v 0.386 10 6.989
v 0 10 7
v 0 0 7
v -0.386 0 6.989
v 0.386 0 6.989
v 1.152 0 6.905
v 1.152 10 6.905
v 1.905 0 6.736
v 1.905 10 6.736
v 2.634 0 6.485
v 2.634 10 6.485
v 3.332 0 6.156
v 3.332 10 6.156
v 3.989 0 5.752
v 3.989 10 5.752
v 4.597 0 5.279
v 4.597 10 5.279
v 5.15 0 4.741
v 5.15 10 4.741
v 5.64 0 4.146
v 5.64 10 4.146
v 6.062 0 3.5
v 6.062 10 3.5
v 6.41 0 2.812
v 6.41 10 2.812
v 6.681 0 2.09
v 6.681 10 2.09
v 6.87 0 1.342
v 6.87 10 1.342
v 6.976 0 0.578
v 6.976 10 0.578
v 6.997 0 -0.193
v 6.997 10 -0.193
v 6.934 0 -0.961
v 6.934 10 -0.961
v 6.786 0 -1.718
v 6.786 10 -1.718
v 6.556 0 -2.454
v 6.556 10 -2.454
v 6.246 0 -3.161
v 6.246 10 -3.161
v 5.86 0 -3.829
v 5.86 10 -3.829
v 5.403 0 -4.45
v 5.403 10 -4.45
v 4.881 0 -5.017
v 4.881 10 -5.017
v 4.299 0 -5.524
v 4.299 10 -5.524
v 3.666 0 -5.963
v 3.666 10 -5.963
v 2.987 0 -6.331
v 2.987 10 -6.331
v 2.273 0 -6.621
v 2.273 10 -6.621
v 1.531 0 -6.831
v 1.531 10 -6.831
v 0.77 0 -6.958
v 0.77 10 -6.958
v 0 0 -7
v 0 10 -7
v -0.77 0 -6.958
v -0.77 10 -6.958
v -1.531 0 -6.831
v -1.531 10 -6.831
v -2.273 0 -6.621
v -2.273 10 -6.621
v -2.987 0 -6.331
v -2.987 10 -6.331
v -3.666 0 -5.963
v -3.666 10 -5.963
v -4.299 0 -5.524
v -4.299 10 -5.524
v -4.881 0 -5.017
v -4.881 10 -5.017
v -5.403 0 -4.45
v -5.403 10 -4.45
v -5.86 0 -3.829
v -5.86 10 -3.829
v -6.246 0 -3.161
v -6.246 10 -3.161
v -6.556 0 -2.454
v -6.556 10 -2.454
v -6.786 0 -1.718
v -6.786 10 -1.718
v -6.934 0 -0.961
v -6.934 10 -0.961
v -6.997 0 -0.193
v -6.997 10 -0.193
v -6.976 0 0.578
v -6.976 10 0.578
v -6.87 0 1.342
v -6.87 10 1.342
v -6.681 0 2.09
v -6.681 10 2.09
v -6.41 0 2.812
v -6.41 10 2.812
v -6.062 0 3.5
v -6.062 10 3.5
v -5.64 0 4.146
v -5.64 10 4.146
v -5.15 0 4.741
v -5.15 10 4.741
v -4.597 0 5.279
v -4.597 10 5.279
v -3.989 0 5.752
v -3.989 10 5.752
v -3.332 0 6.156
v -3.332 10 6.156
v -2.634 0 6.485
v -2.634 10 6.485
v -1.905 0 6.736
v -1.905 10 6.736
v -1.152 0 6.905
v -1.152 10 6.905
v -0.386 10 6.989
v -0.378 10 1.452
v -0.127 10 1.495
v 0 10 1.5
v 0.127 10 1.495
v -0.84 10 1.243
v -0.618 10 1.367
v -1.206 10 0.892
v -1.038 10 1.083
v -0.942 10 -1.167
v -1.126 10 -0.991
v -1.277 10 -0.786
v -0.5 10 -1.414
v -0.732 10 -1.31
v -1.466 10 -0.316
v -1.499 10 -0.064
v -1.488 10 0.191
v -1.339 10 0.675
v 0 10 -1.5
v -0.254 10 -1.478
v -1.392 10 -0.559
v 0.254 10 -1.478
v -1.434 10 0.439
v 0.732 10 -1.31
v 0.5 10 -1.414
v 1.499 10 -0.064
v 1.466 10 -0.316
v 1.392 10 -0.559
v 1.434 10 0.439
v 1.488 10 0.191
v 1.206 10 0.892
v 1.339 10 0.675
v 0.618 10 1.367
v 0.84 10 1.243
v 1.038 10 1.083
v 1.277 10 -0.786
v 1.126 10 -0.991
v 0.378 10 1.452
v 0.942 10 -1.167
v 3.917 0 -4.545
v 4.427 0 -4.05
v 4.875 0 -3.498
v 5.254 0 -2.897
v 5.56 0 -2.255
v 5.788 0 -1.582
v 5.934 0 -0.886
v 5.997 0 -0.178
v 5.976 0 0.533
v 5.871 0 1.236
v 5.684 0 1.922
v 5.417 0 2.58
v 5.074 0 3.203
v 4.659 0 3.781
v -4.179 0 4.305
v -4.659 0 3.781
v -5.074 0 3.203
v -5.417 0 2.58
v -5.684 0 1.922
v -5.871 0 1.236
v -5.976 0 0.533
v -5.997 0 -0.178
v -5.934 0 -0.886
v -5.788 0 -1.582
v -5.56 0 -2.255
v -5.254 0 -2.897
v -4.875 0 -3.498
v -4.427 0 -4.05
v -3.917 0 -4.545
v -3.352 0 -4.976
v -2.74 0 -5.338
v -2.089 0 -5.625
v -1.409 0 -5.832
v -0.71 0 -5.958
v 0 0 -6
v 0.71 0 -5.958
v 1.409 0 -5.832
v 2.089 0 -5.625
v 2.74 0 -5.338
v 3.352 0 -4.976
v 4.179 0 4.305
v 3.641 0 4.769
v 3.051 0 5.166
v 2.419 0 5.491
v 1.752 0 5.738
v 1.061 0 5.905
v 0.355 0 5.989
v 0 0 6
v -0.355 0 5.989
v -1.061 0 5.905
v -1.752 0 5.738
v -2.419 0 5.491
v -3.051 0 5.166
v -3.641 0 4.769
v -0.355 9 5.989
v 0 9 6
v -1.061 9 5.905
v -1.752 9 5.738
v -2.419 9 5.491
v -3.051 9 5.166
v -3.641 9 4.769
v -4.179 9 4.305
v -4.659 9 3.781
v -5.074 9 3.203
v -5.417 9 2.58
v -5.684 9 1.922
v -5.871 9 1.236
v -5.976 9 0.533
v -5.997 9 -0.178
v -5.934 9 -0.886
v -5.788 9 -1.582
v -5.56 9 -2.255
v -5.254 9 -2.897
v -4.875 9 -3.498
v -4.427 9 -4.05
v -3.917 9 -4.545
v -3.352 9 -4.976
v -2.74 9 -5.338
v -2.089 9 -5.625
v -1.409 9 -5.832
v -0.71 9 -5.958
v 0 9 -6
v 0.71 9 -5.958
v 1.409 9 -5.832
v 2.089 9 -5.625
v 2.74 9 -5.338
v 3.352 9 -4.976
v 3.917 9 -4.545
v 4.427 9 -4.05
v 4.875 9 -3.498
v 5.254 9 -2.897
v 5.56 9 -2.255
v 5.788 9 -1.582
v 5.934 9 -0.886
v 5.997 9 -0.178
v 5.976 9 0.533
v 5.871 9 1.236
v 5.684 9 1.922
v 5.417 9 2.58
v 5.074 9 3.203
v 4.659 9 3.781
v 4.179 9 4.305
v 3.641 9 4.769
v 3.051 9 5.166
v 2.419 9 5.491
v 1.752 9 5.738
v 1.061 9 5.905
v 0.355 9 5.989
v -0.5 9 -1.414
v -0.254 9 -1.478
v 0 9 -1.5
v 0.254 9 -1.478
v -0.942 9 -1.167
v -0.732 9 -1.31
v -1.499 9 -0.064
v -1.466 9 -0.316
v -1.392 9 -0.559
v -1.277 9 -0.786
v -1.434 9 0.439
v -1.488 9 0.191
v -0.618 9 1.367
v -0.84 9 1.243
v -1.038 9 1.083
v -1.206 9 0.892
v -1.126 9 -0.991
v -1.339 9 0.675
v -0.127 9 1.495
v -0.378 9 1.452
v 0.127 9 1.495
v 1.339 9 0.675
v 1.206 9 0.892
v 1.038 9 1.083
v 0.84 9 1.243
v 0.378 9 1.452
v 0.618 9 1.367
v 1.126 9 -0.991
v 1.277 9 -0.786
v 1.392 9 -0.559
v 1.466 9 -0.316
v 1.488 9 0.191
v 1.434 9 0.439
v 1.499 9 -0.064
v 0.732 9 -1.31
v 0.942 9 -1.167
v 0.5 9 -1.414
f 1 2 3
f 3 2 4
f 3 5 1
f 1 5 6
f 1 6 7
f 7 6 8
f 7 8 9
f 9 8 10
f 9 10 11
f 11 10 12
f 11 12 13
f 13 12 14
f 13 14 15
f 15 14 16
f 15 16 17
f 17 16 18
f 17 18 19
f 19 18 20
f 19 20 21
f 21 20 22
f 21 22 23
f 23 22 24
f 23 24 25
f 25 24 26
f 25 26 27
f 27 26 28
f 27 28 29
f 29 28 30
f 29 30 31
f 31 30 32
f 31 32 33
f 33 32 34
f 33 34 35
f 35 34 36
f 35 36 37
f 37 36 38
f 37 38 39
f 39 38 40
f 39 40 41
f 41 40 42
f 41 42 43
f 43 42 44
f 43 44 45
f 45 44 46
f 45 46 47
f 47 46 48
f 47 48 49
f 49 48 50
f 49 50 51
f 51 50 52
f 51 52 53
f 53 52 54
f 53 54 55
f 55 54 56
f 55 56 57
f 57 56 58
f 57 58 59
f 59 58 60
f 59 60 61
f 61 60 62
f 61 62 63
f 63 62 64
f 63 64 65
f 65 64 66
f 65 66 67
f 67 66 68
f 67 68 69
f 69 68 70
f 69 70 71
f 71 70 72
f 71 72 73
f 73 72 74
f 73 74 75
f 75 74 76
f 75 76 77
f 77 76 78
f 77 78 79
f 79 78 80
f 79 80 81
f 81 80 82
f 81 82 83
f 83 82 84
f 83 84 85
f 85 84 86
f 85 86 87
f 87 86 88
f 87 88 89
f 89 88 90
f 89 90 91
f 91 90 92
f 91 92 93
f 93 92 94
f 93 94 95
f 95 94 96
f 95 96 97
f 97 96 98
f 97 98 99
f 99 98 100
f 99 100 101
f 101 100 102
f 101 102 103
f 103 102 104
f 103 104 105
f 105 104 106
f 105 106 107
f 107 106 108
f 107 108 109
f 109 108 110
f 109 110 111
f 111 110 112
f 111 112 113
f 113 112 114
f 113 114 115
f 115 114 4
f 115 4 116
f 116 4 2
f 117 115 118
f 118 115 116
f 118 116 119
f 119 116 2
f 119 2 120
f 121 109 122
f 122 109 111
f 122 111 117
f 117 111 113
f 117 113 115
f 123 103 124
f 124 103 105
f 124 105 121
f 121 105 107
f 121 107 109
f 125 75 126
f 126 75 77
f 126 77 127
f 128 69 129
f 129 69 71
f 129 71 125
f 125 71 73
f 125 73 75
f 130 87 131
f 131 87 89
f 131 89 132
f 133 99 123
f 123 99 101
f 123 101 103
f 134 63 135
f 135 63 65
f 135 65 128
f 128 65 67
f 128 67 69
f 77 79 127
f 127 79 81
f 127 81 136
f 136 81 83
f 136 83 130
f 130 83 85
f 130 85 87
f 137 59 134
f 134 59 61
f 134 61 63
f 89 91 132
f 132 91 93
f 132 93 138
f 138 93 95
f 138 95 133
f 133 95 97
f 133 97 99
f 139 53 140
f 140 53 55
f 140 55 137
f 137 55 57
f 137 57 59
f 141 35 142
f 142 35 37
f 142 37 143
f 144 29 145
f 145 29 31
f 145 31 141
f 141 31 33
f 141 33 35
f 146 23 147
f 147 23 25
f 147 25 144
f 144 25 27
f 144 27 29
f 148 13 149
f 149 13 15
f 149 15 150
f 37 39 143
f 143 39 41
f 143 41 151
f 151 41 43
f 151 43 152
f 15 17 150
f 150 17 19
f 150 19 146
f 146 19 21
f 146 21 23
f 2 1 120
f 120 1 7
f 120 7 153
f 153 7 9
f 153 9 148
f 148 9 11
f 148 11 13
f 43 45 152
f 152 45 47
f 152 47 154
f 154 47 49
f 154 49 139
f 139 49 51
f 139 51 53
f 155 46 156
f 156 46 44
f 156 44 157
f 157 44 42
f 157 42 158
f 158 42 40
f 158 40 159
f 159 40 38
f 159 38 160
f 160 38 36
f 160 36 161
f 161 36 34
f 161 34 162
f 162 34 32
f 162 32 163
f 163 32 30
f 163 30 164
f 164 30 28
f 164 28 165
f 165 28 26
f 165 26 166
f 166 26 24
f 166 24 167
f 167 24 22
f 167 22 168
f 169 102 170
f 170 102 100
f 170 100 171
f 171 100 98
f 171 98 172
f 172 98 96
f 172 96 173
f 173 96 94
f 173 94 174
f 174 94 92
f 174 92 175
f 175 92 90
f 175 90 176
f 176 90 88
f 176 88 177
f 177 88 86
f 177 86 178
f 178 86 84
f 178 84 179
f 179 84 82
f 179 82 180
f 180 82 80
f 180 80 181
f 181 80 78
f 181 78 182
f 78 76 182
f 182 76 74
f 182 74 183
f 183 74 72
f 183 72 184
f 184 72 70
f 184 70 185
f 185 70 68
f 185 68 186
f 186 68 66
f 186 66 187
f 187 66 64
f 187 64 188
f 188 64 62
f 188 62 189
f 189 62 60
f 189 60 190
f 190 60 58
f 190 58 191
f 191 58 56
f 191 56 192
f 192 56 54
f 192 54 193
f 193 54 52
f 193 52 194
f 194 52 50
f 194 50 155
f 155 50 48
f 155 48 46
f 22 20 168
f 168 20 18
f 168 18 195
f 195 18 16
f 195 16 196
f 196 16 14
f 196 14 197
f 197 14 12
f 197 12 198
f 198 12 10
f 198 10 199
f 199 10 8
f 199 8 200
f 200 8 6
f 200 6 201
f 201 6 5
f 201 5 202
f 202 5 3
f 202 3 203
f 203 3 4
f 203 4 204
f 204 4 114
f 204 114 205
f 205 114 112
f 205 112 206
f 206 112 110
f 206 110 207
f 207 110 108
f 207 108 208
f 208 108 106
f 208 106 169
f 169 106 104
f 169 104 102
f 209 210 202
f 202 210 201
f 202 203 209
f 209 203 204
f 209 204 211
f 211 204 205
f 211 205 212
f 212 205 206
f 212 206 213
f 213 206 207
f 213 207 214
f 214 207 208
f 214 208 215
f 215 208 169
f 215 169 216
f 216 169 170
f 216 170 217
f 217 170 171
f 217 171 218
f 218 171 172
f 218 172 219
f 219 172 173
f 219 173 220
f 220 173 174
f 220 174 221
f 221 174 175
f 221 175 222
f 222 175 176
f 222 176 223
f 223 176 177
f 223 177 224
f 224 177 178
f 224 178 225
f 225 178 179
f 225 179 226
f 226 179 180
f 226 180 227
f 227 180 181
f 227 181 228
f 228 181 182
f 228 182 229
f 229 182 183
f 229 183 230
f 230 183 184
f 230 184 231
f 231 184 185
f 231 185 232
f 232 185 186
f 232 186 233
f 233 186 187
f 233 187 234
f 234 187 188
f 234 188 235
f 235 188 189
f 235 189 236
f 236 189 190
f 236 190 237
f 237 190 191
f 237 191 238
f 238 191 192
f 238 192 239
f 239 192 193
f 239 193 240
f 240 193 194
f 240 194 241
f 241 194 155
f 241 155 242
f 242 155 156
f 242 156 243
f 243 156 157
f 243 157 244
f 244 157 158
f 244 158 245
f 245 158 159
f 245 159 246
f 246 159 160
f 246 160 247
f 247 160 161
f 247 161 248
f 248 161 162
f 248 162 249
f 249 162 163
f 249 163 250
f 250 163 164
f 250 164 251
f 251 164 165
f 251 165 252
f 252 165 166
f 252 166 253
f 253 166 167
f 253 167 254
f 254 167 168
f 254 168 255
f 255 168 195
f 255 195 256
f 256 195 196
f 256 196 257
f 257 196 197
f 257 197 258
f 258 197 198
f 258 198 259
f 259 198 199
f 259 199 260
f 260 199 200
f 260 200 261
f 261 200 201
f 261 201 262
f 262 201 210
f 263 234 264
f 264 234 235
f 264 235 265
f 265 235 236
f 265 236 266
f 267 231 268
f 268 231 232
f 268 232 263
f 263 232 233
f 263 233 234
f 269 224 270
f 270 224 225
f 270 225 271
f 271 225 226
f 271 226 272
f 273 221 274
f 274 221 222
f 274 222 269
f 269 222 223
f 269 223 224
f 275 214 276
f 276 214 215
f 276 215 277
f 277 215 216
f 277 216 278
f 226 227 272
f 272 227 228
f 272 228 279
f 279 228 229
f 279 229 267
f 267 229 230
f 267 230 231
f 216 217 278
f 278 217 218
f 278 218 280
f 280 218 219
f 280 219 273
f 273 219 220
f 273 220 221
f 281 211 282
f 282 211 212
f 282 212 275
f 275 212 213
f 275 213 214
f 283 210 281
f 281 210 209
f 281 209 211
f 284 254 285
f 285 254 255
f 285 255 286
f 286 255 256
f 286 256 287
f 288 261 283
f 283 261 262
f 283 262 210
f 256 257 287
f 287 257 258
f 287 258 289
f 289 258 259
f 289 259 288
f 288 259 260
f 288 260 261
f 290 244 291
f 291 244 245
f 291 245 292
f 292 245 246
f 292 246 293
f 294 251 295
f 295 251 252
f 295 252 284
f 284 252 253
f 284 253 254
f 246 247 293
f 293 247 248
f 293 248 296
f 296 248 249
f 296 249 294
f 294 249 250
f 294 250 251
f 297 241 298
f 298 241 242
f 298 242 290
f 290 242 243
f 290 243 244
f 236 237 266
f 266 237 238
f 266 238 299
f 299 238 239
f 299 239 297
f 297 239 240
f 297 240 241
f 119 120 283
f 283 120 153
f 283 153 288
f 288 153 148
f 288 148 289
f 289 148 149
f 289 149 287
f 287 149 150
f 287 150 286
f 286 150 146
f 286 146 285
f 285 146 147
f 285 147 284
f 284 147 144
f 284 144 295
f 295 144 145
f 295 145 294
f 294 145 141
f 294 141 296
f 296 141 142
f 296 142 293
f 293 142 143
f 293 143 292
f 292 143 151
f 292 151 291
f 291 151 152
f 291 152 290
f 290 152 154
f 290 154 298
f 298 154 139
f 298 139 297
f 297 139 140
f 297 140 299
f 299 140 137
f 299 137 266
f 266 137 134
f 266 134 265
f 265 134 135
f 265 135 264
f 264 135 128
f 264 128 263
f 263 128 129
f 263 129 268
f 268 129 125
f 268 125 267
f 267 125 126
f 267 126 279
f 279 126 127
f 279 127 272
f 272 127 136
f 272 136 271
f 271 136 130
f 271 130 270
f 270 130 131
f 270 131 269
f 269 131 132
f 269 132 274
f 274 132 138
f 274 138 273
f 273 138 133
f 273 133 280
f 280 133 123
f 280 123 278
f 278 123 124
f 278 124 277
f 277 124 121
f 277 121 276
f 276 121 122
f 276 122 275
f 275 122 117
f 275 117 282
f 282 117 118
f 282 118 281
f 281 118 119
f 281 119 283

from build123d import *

# Parameters (mm, degrees)
SKETCH1_R           = 7
BOSS_EXTRUDE1_DEPTH = 10
SHELL1_T            = -1
SKETCH2_R           = 1.5
CUT_EXTRUDE1_DEPTH  = 10


with BuildPart() as part:
    # Sketch1 → Boss-Extrude1 (new body)
    with BuildSketch(Plane(origin=(0, 0, 0), x_dir=(1, 0, 0), z_dir=(0, 1, 0))):
        with Locations(Location((0, 0, 0), (0, 0, 270))):
            Circle(SKETCH1_R)
    extrude(amount=BOSS_EXTRUDE1_DEPTH)

    # Shell1
    shell1_openings = [part.faces().sort_by_distance(p)[0] for p in [
        (0, 0, 0),
    ]]
    offset(amount=SHELL1_T, openings=shell1_openings, kind=Kind.INTERSECTION)

    # Sketch2 → Cut-Extrude1 (cut)
    with BuildSketch(Plane(origin=(0, 9, 0), x_dir=(-1, 0, 0), z_dir=(0, -1, 0))):
        with Locations(Location((0, 0, 0), (0, 0, 90))):
            Circle(SKETCH2_R)
    extrude(amount=-CUT_EXTRUDE1_DEPTH, mode=Mode.SUBTRACT)


solid = part.part
